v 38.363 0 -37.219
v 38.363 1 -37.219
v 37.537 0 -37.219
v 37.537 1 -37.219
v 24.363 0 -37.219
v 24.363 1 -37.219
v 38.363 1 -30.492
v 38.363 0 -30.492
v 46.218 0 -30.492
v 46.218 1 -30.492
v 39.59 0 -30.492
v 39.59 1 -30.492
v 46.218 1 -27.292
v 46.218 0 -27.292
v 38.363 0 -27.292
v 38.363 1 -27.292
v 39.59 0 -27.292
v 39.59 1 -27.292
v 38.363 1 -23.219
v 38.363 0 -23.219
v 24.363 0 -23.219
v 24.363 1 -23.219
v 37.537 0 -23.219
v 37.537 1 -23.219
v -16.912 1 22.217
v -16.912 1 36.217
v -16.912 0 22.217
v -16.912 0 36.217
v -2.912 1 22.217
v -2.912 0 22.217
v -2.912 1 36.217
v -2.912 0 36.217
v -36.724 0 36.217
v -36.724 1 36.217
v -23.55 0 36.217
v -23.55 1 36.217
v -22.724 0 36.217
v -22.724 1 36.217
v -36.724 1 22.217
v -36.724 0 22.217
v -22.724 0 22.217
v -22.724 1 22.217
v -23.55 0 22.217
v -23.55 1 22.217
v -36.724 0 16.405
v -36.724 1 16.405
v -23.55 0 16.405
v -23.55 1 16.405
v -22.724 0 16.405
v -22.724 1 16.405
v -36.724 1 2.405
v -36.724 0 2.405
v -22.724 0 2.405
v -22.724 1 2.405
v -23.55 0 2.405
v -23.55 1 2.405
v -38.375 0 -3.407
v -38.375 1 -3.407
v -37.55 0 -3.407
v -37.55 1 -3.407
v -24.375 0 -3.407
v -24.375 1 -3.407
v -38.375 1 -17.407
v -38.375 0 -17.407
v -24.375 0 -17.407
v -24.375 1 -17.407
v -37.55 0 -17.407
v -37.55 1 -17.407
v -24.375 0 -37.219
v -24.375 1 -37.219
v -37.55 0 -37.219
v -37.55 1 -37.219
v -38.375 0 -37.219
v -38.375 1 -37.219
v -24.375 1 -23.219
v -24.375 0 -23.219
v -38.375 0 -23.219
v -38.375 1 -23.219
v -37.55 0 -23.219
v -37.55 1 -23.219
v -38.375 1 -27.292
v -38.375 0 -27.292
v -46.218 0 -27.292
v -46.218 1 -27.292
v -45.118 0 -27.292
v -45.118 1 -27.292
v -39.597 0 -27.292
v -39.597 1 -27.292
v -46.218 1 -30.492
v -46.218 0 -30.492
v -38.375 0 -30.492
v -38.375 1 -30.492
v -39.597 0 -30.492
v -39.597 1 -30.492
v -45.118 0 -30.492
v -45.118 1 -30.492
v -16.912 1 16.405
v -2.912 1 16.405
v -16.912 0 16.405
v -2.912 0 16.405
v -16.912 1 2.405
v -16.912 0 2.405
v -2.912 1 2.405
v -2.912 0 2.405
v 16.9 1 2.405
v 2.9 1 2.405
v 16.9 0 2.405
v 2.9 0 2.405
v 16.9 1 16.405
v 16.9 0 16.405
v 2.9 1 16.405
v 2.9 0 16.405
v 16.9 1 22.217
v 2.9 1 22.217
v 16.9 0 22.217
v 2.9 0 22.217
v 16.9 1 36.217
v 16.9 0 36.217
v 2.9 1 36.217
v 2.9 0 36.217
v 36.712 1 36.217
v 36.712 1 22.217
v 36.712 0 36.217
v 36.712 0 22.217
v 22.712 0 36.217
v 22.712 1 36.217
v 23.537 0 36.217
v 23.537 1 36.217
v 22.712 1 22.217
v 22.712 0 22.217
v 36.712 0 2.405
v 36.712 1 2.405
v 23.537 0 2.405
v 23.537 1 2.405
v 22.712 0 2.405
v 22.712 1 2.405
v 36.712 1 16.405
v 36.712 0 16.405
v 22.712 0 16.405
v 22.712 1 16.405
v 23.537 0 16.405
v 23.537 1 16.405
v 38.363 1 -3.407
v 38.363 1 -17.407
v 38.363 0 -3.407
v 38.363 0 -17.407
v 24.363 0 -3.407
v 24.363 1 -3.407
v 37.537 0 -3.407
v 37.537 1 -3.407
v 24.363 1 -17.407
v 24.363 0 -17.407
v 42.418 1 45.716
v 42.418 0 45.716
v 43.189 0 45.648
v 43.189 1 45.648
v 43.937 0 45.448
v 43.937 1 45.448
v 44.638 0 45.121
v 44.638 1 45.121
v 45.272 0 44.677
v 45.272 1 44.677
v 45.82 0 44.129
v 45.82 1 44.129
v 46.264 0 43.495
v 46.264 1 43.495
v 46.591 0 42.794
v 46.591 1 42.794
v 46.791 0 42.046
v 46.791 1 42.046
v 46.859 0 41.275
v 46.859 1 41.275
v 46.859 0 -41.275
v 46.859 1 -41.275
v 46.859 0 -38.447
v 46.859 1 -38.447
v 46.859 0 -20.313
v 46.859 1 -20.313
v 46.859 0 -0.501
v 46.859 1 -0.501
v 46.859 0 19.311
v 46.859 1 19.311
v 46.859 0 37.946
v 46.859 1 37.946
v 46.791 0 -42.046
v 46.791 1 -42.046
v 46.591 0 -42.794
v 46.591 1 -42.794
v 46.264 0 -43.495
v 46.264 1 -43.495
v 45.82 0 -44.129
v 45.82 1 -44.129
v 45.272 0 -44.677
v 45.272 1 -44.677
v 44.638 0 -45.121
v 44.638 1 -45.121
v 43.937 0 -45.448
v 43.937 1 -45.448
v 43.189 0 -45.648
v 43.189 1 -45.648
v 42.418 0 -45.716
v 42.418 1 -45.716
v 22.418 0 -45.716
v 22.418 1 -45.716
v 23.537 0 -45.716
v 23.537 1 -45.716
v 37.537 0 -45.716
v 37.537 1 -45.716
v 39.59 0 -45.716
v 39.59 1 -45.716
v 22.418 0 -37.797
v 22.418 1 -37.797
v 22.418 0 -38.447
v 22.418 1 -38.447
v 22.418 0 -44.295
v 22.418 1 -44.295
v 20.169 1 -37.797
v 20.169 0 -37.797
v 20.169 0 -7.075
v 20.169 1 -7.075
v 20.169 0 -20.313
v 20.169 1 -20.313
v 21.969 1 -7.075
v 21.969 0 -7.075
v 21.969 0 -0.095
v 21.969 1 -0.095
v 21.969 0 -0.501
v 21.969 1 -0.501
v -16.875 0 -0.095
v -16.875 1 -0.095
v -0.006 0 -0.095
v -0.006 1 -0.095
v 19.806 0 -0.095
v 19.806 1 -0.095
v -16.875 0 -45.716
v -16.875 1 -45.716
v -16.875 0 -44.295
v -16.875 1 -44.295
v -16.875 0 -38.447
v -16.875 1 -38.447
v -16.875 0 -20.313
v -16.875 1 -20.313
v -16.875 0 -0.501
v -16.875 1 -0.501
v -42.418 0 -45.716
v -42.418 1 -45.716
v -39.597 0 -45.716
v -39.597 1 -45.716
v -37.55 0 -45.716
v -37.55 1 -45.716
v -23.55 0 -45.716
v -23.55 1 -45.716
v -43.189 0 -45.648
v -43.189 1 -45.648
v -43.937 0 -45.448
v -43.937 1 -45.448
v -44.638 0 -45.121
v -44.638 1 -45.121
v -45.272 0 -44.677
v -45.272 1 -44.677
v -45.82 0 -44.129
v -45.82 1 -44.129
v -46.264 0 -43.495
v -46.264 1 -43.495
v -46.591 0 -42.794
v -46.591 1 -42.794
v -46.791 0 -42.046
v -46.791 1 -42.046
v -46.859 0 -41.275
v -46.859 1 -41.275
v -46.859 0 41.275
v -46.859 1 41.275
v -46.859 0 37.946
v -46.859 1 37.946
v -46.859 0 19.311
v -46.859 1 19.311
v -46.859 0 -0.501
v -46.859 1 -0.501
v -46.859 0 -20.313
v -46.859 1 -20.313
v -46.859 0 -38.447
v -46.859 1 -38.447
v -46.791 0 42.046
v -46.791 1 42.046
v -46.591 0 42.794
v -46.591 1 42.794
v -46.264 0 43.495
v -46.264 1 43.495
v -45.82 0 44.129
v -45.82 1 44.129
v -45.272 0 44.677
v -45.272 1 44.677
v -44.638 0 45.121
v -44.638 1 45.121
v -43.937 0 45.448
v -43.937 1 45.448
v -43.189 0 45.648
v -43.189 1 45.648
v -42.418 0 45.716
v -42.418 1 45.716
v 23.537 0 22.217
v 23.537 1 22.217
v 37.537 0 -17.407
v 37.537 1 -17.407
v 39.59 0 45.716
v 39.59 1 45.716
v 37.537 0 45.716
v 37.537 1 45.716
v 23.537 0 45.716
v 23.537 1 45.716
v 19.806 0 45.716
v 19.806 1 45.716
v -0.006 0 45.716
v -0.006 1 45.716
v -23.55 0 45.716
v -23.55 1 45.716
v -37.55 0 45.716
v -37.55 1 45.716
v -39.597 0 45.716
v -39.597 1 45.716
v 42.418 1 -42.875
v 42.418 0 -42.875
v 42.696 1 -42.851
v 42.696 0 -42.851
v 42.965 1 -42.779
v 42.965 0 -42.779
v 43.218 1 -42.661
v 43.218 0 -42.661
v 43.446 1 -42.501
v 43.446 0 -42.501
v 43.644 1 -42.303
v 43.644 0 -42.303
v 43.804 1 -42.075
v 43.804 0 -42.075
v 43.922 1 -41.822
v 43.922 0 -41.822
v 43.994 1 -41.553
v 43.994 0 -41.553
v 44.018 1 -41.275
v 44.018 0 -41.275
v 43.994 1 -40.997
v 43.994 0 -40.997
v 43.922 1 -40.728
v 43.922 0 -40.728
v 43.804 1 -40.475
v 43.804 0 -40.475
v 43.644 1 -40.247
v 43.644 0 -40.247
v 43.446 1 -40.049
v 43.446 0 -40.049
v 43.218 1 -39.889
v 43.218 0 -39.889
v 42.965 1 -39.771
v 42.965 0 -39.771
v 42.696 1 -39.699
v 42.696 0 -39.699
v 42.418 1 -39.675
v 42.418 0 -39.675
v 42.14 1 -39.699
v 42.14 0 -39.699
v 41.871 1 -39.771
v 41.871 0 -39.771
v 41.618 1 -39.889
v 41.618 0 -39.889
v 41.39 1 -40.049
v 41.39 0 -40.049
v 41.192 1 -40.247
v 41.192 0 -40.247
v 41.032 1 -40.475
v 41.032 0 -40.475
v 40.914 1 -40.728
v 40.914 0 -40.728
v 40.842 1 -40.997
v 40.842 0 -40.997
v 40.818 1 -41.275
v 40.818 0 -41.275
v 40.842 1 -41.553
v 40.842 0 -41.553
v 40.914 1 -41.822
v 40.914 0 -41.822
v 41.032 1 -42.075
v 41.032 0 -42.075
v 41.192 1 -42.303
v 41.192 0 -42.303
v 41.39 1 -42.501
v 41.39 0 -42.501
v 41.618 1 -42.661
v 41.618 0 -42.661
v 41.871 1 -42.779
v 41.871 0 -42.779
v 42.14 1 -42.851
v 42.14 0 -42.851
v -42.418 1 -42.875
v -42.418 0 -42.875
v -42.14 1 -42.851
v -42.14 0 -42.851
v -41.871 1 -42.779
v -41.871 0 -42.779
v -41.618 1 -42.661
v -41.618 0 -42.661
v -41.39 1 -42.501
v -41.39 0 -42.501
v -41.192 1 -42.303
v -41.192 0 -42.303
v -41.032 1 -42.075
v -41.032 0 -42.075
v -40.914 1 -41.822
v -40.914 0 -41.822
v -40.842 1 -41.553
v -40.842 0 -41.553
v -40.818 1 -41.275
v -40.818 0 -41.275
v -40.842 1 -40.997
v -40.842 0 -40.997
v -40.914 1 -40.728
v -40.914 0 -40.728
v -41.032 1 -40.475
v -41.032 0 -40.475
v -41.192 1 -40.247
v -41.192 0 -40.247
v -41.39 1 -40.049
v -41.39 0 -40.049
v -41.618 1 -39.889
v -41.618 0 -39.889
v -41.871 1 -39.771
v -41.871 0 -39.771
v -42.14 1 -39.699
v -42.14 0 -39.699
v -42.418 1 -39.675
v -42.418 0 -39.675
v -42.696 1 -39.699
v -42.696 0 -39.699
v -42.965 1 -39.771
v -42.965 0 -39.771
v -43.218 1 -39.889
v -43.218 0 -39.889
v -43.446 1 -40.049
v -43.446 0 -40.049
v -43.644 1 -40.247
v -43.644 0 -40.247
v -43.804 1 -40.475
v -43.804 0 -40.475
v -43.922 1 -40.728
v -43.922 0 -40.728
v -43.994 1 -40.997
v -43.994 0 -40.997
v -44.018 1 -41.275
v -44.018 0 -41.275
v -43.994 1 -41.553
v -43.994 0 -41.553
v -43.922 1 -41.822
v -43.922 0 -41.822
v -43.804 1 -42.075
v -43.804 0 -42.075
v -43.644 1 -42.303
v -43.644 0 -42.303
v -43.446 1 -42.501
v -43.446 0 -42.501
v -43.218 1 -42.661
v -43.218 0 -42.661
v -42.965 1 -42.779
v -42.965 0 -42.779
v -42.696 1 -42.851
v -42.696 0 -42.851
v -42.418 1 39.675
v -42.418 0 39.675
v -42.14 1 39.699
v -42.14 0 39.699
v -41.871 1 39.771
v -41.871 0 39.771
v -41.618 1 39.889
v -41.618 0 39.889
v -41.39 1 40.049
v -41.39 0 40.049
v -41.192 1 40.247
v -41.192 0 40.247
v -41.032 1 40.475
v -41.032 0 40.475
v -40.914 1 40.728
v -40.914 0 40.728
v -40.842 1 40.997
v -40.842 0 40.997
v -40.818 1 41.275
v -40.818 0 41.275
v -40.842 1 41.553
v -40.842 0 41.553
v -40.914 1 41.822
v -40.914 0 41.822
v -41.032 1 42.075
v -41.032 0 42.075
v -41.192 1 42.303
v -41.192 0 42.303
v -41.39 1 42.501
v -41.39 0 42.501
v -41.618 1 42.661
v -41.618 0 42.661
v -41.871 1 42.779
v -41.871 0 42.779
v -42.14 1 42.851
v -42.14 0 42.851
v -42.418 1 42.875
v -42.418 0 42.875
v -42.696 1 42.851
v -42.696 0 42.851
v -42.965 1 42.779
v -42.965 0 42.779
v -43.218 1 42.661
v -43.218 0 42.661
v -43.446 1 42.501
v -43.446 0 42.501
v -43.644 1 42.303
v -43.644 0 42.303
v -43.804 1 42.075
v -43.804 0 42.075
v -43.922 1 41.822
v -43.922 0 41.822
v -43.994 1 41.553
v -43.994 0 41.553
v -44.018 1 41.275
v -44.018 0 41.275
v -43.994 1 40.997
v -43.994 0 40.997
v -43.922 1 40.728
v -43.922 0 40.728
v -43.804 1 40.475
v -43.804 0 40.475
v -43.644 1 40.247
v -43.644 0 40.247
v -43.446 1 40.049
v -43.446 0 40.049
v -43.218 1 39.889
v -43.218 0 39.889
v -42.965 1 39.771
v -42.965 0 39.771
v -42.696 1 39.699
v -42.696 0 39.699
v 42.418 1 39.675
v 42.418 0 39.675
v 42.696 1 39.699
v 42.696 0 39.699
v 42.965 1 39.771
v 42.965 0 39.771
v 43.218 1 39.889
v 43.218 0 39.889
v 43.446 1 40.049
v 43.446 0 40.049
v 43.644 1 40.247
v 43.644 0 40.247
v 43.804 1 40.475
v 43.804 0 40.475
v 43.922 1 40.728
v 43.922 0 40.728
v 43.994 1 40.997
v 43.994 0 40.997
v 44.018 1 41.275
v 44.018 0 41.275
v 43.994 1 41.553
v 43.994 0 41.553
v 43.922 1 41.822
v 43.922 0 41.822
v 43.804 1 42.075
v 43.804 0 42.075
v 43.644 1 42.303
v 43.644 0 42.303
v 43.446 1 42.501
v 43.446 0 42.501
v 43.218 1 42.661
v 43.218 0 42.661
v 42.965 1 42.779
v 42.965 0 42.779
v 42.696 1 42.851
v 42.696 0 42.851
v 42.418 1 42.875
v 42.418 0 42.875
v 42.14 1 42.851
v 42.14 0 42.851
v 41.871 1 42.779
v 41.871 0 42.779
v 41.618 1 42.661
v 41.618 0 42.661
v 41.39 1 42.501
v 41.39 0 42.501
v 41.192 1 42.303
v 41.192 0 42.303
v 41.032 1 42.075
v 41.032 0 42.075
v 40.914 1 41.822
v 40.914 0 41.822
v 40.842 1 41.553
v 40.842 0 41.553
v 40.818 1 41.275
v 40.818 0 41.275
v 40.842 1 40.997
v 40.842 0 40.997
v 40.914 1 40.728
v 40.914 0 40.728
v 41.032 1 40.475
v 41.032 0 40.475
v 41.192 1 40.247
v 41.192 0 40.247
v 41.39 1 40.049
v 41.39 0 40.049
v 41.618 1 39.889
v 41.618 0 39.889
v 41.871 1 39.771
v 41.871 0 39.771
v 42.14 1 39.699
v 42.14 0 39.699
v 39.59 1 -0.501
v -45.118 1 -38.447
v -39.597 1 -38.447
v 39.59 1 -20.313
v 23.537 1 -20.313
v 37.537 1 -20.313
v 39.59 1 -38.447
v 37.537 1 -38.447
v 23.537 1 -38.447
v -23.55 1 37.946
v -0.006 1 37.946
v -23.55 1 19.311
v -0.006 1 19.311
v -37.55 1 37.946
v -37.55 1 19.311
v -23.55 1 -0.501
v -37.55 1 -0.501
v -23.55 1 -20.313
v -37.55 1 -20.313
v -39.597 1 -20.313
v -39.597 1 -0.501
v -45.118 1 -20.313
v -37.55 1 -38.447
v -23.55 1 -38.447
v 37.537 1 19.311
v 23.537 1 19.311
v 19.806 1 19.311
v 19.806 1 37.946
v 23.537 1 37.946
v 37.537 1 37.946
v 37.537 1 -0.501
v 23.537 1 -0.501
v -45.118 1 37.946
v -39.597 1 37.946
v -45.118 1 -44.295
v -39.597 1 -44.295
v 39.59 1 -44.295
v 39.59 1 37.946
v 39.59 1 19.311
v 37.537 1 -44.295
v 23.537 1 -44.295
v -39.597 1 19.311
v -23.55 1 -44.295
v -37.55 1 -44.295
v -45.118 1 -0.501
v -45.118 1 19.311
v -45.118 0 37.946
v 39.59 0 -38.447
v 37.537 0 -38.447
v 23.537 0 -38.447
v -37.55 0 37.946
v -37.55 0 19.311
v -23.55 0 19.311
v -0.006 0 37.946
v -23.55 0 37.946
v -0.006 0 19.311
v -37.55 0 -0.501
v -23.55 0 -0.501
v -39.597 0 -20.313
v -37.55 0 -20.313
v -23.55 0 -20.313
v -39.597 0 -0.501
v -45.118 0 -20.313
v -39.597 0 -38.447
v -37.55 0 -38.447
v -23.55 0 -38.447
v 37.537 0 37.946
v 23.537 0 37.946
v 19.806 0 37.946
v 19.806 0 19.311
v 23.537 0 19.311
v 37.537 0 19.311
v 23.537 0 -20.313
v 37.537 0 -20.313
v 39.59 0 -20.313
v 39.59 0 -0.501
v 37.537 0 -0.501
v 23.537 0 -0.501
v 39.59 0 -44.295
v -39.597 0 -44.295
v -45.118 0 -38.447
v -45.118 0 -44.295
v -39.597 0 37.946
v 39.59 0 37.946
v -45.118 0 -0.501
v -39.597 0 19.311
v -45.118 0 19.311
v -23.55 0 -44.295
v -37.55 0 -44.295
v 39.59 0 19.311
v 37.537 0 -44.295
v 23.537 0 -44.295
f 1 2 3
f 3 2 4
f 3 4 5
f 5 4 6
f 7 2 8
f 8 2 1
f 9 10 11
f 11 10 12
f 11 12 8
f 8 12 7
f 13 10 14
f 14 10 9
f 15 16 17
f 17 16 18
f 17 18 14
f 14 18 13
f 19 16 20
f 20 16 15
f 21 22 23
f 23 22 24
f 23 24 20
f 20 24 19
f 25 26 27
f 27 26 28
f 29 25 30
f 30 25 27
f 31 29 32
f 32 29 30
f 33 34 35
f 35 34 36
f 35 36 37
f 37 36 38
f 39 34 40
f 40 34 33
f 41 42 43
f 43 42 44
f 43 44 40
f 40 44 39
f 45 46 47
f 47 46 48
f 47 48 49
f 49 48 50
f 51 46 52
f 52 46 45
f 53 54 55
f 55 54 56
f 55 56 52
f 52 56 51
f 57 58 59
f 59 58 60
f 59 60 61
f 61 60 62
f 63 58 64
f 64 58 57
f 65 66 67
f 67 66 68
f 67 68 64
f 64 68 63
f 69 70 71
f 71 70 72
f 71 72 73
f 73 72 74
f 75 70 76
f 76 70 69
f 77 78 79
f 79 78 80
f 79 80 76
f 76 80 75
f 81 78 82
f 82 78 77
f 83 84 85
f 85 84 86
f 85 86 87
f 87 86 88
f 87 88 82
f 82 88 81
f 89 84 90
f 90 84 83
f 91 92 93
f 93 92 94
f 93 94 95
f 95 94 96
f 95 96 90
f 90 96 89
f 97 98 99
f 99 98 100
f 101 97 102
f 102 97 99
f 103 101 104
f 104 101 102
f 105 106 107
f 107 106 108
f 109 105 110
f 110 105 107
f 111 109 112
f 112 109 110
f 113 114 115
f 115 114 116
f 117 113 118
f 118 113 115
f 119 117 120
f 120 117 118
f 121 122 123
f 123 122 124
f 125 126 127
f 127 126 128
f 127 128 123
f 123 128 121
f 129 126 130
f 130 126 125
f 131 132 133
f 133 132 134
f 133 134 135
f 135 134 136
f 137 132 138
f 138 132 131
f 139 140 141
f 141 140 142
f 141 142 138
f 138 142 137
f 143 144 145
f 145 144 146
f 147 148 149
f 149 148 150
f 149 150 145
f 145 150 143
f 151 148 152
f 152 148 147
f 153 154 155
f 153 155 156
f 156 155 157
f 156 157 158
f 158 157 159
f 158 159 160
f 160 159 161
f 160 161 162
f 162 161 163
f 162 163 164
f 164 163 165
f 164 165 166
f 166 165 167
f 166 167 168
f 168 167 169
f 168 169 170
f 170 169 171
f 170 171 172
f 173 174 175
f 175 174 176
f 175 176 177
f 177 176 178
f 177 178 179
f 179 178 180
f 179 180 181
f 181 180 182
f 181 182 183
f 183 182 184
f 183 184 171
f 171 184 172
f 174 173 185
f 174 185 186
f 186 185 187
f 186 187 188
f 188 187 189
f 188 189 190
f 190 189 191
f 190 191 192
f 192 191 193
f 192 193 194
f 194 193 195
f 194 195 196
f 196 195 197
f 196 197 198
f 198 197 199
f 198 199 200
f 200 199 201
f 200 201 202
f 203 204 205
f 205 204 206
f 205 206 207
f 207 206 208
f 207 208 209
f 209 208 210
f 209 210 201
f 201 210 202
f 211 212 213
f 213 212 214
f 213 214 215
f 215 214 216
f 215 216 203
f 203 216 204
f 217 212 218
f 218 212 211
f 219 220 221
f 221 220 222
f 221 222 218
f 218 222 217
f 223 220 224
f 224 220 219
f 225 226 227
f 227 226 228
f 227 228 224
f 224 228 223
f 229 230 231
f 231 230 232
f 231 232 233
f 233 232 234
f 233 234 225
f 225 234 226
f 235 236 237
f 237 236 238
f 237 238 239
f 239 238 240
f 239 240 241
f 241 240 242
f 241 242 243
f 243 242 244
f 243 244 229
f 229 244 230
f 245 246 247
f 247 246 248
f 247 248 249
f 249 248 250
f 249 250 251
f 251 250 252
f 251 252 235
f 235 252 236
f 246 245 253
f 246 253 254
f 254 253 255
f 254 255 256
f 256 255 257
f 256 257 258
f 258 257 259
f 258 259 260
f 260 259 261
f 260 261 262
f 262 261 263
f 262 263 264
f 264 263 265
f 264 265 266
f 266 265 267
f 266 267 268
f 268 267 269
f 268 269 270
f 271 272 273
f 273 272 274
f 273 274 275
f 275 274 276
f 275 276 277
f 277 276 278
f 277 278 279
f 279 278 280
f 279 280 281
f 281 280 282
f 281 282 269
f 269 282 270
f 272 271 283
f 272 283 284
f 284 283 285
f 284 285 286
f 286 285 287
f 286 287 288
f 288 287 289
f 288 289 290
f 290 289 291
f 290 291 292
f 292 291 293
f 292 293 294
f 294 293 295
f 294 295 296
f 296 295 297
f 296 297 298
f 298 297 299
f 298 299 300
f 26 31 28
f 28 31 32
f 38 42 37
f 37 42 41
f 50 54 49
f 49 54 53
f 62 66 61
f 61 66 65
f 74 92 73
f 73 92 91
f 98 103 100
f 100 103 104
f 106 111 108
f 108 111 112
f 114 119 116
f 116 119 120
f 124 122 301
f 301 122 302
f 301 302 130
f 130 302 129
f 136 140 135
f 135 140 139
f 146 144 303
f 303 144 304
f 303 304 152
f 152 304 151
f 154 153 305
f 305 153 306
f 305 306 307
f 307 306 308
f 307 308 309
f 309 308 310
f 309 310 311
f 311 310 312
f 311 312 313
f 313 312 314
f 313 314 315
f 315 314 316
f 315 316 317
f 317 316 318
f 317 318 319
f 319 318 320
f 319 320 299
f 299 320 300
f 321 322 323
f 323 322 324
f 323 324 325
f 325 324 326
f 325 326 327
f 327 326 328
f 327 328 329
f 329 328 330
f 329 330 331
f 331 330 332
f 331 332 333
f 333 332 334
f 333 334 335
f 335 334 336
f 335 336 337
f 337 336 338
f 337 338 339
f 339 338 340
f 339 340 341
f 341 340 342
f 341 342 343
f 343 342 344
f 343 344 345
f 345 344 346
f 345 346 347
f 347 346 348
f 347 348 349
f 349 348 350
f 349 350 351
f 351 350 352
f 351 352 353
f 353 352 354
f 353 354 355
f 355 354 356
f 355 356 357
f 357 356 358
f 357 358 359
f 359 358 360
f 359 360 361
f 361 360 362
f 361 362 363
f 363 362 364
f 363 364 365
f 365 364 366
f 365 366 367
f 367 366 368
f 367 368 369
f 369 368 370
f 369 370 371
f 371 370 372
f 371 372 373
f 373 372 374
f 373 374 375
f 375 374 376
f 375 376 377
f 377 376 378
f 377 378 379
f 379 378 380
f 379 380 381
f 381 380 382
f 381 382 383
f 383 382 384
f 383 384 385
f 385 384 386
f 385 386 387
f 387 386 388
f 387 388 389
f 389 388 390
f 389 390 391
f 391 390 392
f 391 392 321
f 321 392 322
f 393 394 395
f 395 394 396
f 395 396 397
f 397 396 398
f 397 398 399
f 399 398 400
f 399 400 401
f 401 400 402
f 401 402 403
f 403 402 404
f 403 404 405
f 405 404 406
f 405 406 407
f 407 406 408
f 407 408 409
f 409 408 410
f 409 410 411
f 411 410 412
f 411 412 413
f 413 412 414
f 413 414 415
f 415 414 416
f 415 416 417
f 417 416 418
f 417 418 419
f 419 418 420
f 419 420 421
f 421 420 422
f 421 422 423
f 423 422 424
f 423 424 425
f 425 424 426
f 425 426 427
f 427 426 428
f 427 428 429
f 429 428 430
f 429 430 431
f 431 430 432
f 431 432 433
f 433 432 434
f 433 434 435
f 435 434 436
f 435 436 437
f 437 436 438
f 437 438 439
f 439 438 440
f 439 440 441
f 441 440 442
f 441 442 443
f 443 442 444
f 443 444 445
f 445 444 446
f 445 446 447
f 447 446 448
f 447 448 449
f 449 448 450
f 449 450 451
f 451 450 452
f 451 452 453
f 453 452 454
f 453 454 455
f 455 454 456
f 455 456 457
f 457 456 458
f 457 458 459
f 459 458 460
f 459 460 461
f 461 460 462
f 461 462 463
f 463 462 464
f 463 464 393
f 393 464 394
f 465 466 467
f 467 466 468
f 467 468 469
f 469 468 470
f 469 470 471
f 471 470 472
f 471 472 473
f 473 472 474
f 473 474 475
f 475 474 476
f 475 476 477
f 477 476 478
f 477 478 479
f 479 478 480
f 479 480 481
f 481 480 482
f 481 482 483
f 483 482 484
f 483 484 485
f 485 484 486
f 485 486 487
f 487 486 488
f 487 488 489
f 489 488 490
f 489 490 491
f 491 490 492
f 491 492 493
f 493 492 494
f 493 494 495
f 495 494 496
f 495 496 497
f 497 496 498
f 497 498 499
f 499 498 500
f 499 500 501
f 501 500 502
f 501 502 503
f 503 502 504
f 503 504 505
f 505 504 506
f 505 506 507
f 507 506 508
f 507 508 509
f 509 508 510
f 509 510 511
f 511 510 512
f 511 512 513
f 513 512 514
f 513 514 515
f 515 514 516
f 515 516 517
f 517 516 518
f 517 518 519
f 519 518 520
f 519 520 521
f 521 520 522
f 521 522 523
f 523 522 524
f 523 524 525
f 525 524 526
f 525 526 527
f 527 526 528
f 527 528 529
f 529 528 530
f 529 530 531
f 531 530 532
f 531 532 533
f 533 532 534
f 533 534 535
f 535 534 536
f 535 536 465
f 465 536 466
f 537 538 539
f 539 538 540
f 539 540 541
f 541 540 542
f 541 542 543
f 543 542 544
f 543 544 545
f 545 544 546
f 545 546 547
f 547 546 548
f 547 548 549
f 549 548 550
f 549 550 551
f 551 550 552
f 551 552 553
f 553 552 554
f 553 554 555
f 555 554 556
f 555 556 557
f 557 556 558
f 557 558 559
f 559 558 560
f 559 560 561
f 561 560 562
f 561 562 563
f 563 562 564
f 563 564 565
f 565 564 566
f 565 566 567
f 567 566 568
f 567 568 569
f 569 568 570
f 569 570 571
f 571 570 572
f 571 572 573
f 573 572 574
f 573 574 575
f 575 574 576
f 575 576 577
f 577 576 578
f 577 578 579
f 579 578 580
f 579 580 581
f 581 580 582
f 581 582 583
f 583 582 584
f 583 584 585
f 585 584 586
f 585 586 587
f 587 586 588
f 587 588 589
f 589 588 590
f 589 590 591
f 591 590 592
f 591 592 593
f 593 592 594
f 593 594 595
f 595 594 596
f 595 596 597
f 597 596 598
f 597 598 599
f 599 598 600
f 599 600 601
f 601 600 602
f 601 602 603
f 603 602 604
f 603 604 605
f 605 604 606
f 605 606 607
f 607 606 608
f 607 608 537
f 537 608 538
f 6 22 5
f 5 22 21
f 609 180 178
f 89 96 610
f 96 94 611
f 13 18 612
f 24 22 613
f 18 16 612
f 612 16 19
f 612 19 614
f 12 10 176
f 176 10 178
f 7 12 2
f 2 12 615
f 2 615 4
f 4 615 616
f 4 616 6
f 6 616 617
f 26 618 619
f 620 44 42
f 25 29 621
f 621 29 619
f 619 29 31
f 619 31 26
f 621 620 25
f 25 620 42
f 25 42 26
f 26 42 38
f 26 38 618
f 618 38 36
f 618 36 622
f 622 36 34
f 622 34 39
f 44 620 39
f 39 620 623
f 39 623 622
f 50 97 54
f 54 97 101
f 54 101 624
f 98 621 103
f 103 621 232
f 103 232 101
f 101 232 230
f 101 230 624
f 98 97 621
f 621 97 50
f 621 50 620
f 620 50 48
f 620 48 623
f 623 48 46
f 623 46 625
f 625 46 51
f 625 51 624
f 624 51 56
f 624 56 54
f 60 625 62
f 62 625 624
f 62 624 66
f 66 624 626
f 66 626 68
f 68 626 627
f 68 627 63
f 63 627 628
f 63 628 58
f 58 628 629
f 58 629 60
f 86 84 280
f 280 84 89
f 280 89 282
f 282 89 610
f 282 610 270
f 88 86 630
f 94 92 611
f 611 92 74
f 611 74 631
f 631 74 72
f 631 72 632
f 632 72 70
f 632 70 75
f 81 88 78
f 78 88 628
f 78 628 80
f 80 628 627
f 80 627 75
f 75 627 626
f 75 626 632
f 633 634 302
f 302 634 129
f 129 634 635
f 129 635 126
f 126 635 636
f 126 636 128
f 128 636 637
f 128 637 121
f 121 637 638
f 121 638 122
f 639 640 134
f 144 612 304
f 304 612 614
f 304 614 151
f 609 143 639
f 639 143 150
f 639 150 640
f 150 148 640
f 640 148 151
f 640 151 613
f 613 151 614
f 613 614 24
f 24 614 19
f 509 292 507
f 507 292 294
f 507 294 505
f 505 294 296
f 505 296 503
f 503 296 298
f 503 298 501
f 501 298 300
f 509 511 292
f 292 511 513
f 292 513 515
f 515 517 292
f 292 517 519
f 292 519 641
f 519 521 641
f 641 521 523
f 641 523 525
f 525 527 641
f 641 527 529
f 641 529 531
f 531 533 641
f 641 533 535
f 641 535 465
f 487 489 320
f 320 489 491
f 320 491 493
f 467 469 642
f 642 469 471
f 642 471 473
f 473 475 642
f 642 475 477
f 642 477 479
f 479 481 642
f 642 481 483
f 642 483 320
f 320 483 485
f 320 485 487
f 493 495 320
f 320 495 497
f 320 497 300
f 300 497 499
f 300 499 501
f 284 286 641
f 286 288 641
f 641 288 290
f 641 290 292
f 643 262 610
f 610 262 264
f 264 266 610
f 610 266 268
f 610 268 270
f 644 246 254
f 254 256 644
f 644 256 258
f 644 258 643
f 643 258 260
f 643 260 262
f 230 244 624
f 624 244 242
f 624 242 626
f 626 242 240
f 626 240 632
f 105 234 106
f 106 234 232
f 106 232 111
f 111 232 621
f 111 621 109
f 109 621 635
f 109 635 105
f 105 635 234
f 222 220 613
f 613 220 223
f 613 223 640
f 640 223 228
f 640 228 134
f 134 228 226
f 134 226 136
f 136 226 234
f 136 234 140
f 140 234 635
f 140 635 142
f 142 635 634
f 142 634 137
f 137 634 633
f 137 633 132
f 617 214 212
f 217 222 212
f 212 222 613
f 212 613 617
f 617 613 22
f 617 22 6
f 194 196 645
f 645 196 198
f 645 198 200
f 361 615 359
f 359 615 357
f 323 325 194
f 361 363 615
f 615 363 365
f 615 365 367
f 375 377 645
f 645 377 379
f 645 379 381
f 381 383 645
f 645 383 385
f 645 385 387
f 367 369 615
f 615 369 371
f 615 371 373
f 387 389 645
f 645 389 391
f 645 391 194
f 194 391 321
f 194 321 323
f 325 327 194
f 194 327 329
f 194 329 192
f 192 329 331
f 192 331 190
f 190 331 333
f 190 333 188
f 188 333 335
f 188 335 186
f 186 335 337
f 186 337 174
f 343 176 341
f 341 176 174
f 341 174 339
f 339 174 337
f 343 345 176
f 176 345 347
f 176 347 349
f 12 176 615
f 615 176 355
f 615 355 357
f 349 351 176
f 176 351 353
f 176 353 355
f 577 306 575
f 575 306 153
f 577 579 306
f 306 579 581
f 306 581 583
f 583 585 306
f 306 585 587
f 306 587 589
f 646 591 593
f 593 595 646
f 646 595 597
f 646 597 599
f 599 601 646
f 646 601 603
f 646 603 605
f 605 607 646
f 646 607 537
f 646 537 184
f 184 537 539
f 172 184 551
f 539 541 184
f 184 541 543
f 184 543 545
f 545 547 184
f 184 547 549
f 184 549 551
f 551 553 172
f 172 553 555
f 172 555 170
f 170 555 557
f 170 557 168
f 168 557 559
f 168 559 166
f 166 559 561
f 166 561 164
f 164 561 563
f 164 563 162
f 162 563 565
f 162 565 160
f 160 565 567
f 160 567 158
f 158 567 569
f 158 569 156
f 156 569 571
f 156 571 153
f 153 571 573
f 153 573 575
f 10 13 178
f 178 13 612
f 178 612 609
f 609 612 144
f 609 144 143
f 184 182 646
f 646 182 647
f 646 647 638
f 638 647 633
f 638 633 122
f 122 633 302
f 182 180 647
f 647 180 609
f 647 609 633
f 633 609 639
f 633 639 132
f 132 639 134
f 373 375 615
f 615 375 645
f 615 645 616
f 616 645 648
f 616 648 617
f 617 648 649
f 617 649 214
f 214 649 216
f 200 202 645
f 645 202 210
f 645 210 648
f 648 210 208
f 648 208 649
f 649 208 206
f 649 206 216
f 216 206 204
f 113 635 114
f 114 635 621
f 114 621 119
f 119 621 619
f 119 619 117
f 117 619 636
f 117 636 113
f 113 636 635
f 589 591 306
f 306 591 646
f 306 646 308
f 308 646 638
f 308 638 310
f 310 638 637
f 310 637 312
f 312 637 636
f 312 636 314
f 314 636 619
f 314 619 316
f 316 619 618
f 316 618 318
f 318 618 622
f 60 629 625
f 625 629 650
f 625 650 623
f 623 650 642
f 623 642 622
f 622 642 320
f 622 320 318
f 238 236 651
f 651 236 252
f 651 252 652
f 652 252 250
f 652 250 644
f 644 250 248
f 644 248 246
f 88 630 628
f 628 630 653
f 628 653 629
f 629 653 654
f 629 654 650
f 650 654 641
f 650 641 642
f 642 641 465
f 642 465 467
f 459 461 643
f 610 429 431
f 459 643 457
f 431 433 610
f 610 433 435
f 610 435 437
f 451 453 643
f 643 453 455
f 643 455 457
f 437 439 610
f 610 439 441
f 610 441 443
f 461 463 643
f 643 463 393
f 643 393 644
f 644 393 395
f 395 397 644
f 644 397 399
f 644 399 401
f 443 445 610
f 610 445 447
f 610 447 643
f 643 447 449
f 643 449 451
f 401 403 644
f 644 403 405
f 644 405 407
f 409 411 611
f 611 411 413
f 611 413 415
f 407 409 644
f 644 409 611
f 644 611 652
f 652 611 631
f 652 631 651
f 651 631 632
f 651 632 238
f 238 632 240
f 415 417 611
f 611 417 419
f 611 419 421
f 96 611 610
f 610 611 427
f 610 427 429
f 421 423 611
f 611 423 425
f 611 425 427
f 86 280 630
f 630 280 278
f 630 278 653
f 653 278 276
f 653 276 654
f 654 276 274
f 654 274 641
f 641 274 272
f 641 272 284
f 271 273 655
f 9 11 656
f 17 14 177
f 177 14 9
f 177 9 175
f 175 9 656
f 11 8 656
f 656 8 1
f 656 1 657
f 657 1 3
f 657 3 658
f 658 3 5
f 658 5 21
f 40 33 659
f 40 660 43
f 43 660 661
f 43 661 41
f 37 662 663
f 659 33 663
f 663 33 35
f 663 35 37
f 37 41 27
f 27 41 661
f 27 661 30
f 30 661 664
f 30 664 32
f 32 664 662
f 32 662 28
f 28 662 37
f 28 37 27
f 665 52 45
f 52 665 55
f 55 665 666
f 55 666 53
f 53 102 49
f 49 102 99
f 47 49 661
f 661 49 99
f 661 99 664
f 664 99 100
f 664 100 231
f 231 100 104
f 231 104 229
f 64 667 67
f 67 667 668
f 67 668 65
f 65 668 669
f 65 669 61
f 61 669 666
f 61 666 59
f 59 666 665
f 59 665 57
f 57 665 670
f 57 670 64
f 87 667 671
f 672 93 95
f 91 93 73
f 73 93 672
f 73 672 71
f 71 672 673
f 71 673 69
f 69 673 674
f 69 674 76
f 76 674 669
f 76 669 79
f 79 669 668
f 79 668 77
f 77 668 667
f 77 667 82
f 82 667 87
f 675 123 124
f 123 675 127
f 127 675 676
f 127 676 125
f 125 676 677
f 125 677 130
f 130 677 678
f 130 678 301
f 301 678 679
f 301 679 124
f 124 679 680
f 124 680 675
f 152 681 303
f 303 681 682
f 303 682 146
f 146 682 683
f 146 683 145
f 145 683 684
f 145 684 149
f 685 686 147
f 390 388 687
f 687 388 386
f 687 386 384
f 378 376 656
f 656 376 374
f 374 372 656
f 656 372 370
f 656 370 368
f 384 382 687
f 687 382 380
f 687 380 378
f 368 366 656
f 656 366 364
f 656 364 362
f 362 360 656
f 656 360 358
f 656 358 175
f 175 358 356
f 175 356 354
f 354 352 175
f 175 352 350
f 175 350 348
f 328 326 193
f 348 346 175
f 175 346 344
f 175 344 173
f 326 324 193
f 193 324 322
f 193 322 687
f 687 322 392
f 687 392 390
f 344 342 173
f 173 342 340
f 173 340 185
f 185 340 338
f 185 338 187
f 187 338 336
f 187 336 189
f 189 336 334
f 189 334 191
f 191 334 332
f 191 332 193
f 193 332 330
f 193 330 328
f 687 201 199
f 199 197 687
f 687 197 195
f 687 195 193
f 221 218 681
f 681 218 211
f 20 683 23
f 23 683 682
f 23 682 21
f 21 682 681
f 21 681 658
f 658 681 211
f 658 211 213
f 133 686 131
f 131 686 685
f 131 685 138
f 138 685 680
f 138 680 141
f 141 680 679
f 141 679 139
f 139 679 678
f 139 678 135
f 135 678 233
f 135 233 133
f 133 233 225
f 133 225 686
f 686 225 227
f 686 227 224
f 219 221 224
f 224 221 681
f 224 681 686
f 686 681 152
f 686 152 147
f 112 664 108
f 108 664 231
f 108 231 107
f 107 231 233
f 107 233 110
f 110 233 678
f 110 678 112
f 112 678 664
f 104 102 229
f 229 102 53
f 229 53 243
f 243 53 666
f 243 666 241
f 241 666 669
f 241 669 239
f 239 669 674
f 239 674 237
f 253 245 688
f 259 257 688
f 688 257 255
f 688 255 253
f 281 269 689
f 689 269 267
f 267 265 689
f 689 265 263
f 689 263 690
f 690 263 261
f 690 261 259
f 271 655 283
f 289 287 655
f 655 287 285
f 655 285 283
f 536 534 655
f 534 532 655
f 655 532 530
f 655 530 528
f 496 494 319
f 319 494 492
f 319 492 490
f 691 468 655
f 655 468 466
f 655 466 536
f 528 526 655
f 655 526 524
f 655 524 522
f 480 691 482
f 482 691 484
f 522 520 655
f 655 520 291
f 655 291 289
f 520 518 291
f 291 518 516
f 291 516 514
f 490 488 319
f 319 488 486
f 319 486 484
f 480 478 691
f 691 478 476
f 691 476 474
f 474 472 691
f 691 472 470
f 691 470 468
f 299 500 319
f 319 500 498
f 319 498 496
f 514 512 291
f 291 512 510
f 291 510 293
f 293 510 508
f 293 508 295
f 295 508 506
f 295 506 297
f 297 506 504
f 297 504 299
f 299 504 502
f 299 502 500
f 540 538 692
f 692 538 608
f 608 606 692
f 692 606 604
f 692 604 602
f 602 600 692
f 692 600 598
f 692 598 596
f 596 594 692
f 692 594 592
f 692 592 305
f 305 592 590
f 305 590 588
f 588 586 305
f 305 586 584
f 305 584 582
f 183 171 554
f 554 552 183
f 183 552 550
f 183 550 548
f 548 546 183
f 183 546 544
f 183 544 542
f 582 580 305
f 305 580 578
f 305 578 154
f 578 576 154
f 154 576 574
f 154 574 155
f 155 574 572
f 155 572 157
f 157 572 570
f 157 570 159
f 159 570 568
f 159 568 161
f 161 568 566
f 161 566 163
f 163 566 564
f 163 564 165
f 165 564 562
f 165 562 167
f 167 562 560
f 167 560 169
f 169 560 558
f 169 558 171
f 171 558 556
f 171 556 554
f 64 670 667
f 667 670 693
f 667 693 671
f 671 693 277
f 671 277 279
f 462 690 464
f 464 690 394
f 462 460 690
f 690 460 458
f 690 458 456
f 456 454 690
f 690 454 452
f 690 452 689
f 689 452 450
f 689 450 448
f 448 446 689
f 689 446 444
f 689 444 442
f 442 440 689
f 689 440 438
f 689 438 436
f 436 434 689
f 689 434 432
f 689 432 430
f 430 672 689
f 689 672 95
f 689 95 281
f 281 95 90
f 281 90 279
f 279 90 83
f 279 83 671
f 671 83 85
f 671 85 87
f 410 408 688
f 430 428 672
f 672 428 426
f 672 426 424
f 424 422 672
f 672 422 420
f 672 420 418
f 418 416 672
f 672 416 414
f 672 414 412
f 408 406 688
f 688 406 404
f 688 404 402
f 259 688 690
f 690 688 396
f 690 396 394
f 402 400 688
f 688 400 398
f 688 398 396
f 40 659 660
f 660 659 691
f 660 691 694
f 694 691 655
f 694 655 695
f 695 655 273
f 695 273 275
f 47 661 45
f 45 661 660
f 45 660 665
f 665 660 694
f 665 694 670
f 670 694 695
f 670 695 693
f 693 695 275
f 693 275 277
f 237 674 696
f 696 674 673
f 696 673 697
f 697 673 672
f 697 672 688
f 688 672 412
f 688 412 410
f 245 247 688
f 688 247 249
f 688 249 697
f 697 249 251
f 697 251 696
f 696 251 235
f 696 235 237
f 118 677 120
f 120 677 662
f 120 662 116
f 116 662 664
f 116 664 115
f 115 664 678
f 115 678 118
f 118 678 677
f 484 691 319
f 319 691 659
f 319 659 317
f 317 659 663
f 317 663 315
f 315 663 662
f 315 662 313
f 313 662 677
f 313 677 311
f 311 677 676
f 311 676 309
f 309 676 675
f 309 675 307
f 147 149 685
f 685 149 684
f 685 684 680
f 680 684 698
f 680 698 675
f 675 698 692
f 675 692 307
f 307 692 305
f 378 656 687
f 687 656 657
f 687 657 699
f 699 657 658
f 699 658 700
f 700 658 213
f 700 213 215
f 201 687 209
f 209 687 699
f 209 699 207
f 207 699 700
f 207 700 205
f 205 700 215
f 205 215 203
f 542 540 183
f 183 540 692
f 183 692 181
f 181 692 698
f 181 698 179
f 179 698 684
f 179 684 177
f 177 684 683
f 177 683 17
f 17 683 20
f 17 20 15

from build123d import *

# Parameters (mm, degrees)
SKETCH2_R           = 1.6
BOSS_EXTRUDE3_DEPTH = 1


with BuildPart() as part:
    # Sketch2 → Boss-Extrude3 (new body)
    with BuildSketch(Plane(origin=(0, 0, 0), x_dir=(1, 0, 0), z_dir=(0, 1, 0))):
        with BuildLine():
            Line((-46.858540632, 41.275), (-46.858540632, -41.275))
            ThreePointArc((-46.858540632, -41.275), (-45.557936393, -44.414936393), (-42.418, -45.715540632))
            Line((-42.418, -45.715540632), (42.418, -45.715540632))
            ThreePointArc((42.418, -45.715540632), (45.557936393, -44.414936393), (46.858540632, -41.275))
            Line((46.858540632, -41.275), (46.858540632, 41.275))
            ThreePointArc((46.858540632, 41.275), (45.557936393, 44.414936393), (42.418, 45.715540632))
            Line((42.418, 45.715540632), (22.418, 45.715540632))
            Line((22.418, 45.715540632), (22.418, 41.275))
            Line((22.418, 41.275), (22.418, 39.575))
            Line((22.418, 39.575), (22.418, 37.797317828))
            Line((22.418, 37.797317828), (20.16872062, 37.797317828))
            Line((20.16872062, 37.797317828), (20.16872062, 9.575))
            Line((20.16872062, 9.575), (20.16872062, 7.075))
            Line((20.16872062, 7.075), (21.96872062, 7.075))
            Line((21.96872062, 7.075), (21.96872062, 0.094907102))
            Line((21.96872062, 0.094907102), (-9.912382857, 0.094907102))
            Line((-9.912382857, 0.094907102), (-16.875382857, 0.094907102))
            Line((-16.875382857, 0.094907102), (-16.875382857, 30.218907102))
            Line((-16.875382857, 30.218907102), (-16.875382857, 45.715540632))
            Line((-16.875382857, 45.715540632), (-42.418, 45.715540632))
            ThreePointArc((-42.418, 45.715540632), (-45.557936393, 44.414936393), (-46.858540632, 41.275))
        make_face()
        with Locations(Location((-42.418, -41.275, 0), (0, 0, 270))):
            Circle(SKETCH2_R, mode=Mode.SUBTRACT)
        Polygon((-36.724382857, -36.217092898), (-36.724382857, -29.217092898), (-36.724382857, -22.217092898), (-22.724382857, -22.217092898), (-22.724382857, -36.217092898), align=None, mode=Mode.SUBTRACT)
        Polygon((-16.912382857, -22.217092898), (-9.912382857, -22.217092898), (-2.912382857, -22.217092898), (-2.912382857, -36.217092898), (-16.912382857, -36.217092898), align=None, mode=Mode.SUBTRACT)
        Polygon((-36.724382857, -16.405092898), (-36.724382857, -9.405092898), (-36.724382857, -2.405092898), (-22.724382857, -2.405092898), (-22.724382857, -16.405092898), align=None, mode=Mode.SUBTRACT)
        Polygon((-2.912382857, -16.405092898), (-9.912382857, -16.405092898), (-16.912382857, -16.405092898), (-16.912382857, -2.405092898), (-2.912382857, -2.405092898), align=None, mode=Mode.SUBTRACT)
        Polygon((2.899617143, -22.217092898), (9.899617143, -22.217092898), (16.899617143, -22.217092898), (16.899617143, -36.217092898), (2.899617143, -36.217092898), align=None, mode=Mode.SUBTRACT)
        with Locations(Location((42.418, -41.275, 0), (0, 0, 270))):
            Circle(SKETCH2_R, mode=Mode.SUBTRACT)
        Polygon((36.711617143, -22.217092898), (36.711617143, -29.217092898), (36.711617143, -36.217092898), (22.711617143, -36.217092898), (22.711617143, -22.217092898), align=None, mode=Mode.SUBTRACT)
        Polygon((2.899617143, -2.405092898), (9.899617143, -2.405092898), (16.899617143, -2.405092898), (16.899617143, -16.405092898), (2.899617143, -16.405092898), align=None, mode=Mode.SUBTRACT)
        Polygon((22.711617143, -2.405092898), (29.711617143, -2.405092898), (36.711617143, -2.405092898), (36.711617143, -16.405092898), (22.711617143, -16.405092898), align=None, mode=Mode.SUBTRACT)
        Polygon((-38.375382857, 3.406907102), (-38.375382857, 10.406907102), (-38.375382857, 17.406907102), (-24.375382857, 17.406907102), (-24.375382857, 3.406907102), align=None, mode=Mode.SUBTRACT)
        Polygon((-46.218, 27.292), (-46.218, 28.892), (-46.218, 30.492), (-38.375382857, 30.492), (-38.375382857, 37.218907102), (-31.375382857, 37.218907102), (-24.375382857, 37.218907102), (-24.375382857, 23.218907102), (-38.375382857, 23.218907102), (-38.375382857, 27.292), align=None, mode=Mode.SUBTRACT)
        with Locations(Location((-42.418, 41.275, 0), (0, 0, 270))):
            Circle(SKETCH2_R, mode=Mode.SUBTRACT)
        Polygon((38.362617143, 17.406907102), (38.362617143, 10.406907102), (38.362617143, 3.406907102), (24.362617143, 3.406907102), (24.362617143, 17.406907102), align=None, mode=Mode.SUBTRACT)
        Polygon((46.218, 27.292), (42.418, 27.292), (38.362617143, 27.292), (38.362617143, 23.218907102), (24.362617143, 23.218907102), (24.362617143, 37.218907102), (38.362617143, 37.218907102), (38.362617143, 30.492), (42.418, 30.492), (46.218, 30.492), align=None, mode=Mode.SUBTRACT)
        with Locations(Location((42.418, 41.275, 0), (0, 0, 270))):
            Circle(SKETCH2_R, mode=Mode.SUBTRACT)
    extrude(amount=BOSS_EXTRUDE3_DEPTH)


solid = part.part
